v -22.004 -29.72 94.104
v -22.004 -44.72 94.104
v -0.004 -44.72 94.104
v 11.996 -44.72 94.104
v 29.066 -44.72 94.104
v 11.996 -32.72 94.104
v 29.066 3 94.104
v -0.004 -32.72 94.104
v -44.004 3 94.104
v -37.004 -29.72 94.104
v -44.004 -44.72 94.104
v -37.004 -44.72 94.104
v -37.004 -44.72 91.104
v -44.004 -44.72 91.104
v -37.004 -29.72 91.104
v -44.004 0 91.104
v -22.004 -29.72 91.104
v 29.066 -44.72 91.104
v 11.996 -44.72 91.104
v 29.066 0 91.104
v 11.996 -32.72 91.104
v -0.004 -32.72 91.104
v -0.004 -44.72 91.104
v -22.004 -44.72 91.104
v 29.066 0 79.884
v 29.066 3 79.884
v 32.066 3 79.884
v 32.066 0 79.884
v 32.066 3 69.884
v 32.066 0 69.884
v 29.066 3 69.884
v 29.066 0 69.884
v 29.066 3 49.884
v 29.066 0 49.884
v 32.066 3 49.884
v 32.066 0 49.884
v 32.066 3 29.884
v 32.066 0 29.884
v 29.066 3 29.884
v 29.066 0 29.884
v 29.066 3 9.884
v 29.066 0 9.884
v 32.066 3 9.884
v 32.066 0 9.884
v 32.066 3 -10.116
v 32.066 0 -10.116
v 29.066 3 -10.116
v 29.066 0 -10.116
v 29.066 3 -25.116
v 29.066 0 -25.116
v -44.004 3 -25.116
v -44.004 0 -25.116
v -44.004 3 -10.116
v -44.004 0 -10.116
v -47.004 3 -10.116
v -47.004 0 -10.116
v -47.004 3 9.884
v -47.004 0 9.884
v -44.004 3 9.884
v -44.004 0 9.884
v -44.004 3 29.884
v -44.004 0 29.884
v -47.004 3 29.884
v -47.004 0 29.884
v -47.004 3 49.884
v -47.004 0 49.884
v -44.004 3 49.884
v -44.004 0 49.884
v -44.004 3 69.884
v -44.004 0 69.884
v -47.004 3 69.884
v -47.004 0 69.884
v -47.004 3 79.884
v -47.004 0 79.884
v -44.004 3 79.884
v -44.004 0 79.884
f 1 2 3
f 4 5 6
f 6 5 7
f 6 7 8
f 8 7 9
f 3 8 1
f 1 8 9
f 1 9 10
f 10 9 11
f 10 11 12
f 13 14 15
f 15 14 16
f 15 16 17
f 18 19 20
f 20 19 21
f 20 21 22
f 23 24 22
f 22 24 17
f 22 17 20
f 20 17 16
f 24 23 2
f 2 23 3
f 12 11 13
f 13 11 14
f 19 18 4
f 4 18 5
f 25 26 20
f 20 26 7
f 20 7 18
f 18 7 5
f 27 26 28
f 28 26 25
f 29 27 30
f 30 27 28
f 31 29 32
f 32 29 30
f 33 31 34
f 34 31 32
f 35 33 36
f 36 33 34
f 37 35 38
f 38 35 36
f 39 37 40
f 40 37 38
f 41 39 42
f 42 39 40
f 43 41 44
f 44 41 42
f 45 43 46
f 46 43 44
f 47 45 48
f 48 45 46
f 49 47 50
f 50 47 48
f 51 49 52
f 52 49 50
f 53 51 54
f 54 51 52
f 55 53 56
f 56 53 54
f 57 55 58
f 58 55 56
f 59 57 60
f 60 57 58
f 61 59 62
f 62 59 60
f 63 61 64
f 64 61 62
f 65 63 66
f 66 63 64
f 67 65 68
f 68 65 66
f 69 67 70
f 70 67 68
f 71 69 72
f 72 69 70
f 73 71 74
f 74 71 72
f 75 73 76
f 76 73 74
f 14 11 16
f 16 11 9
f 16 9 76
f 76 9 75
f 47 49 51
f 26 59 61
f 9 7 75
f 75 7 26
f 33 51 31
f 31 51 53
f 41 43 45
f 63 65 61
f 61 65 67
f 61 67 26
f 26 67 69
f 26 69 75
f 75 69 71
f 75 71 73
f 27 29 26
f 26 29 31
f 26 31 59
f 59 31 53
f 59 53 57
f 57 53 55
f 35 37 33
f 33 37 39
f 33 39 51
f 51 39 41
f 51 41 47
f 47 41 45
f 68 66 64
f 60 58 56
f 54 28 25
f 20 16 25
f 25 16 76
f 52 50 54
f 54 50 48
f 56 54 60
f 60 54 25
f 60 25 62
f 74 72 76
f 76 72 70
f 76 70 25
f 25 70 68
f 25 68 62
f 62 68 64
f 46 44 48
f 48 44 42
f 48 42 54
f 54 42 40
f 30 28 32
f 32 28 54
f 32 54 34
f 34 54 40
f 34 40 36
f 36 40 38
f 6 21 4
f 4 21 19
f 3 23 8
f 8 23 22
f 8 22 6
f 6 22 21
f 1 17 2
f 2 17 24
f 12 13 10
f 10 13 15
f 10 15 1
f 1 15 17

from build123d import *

# Parameters (mm, degrees)
SALIENTE_EXTRUIR1_DEPTH = 3
CROQUIS2_W              = 73.07
CROQUIS2_H              = 3
SALIENTE_EXTRUIR2_DEPTH = 47.72
CROQUIS3_W              = 15
CROQUIS3_H              = 15
CROQUIS3_W_2            = 12
CROQUIS3_H_2            = 12
CORTAR_EXTRUIR1_DEPTH   = 47.72


with BuildPart() as part:
    # Croquis1 → Saliente-Extruir1 (new body)
    with BuildSketch(Plane(origin=(0, 0, 0), x_dir=(1, 0, 0), z_dir=(0, 1, 0))):
        Polygon((29.065596193, -79.884359085), (29.065596193, -82.884359085), (29.065596193, -94.104359085), (-44.004403807, -94.104359085), (-44.004403807, -79.884359085), (-47.004403807, -79.884359085), (-47.004403807, -69.884359085), (-44.004403807, -69.884359085), (-44.004403807, -49.884359085), (-47.004403807, -49.884359085), (-47.004403807, -29.884359085), (-44.004403807, -29.884359085), (-44.004403807, -9.884359085), (-47.004403807, -9.884359085), (-47.004403807, 10.115640915), (-44.004403807, 10.115640915), (-44.004403807, 25.115640915), (29.065596193, 25.115640915), (29.065596193, 10.115640915), (32.065596193, 10.115640915), (32.065596193, -9.884359085), (29.065596193, -9.884359085), (29.065596193, -29.884359085), (32.065596193, -29.884359085), (32.065596193, -49.884359085), (29.065596193, -49.884359085), (29.065596193, -69.884359085), (32.065596193, -69.884359085), (32.065596193, -79.884359085), align=None)
    extrude(amount=SALIENTE_EXTRUIR1_DEPTH)

    # Croquis2 → Saliente-Extruir2 (add)
    with BuildSketch(Plane(origin=(0, 3, 0), x_dir=(1, 0, 0), z_dir=(0, 1, 0))):
        with Locations((-7.469403807, -92.604359085)):
            Rectangle(CROQUIS2_W, CROQUIS2_H)
    extrude(amount=-SALIENTE_EXTRUIR2_DEPTH)

    # Croquis3 → Cortar-Extruir1 (cut)
    with BuildSketch(Plane.XY.offset(94.104359085)):
        with Locations((-29.504403807, -37.22)):
            Rectangle(CROQUIS3_W, CROQUIS3_H)
        with Locations((5.995596193, -38.72)):
            Rectangle(CROQUIS3_W_2, CROQUIS3_H_2)
    extrude(amount=-CORTAR_EXTRUIR1_DEPTH, mode=Mode.SUBTRACT)


solid = part.part
